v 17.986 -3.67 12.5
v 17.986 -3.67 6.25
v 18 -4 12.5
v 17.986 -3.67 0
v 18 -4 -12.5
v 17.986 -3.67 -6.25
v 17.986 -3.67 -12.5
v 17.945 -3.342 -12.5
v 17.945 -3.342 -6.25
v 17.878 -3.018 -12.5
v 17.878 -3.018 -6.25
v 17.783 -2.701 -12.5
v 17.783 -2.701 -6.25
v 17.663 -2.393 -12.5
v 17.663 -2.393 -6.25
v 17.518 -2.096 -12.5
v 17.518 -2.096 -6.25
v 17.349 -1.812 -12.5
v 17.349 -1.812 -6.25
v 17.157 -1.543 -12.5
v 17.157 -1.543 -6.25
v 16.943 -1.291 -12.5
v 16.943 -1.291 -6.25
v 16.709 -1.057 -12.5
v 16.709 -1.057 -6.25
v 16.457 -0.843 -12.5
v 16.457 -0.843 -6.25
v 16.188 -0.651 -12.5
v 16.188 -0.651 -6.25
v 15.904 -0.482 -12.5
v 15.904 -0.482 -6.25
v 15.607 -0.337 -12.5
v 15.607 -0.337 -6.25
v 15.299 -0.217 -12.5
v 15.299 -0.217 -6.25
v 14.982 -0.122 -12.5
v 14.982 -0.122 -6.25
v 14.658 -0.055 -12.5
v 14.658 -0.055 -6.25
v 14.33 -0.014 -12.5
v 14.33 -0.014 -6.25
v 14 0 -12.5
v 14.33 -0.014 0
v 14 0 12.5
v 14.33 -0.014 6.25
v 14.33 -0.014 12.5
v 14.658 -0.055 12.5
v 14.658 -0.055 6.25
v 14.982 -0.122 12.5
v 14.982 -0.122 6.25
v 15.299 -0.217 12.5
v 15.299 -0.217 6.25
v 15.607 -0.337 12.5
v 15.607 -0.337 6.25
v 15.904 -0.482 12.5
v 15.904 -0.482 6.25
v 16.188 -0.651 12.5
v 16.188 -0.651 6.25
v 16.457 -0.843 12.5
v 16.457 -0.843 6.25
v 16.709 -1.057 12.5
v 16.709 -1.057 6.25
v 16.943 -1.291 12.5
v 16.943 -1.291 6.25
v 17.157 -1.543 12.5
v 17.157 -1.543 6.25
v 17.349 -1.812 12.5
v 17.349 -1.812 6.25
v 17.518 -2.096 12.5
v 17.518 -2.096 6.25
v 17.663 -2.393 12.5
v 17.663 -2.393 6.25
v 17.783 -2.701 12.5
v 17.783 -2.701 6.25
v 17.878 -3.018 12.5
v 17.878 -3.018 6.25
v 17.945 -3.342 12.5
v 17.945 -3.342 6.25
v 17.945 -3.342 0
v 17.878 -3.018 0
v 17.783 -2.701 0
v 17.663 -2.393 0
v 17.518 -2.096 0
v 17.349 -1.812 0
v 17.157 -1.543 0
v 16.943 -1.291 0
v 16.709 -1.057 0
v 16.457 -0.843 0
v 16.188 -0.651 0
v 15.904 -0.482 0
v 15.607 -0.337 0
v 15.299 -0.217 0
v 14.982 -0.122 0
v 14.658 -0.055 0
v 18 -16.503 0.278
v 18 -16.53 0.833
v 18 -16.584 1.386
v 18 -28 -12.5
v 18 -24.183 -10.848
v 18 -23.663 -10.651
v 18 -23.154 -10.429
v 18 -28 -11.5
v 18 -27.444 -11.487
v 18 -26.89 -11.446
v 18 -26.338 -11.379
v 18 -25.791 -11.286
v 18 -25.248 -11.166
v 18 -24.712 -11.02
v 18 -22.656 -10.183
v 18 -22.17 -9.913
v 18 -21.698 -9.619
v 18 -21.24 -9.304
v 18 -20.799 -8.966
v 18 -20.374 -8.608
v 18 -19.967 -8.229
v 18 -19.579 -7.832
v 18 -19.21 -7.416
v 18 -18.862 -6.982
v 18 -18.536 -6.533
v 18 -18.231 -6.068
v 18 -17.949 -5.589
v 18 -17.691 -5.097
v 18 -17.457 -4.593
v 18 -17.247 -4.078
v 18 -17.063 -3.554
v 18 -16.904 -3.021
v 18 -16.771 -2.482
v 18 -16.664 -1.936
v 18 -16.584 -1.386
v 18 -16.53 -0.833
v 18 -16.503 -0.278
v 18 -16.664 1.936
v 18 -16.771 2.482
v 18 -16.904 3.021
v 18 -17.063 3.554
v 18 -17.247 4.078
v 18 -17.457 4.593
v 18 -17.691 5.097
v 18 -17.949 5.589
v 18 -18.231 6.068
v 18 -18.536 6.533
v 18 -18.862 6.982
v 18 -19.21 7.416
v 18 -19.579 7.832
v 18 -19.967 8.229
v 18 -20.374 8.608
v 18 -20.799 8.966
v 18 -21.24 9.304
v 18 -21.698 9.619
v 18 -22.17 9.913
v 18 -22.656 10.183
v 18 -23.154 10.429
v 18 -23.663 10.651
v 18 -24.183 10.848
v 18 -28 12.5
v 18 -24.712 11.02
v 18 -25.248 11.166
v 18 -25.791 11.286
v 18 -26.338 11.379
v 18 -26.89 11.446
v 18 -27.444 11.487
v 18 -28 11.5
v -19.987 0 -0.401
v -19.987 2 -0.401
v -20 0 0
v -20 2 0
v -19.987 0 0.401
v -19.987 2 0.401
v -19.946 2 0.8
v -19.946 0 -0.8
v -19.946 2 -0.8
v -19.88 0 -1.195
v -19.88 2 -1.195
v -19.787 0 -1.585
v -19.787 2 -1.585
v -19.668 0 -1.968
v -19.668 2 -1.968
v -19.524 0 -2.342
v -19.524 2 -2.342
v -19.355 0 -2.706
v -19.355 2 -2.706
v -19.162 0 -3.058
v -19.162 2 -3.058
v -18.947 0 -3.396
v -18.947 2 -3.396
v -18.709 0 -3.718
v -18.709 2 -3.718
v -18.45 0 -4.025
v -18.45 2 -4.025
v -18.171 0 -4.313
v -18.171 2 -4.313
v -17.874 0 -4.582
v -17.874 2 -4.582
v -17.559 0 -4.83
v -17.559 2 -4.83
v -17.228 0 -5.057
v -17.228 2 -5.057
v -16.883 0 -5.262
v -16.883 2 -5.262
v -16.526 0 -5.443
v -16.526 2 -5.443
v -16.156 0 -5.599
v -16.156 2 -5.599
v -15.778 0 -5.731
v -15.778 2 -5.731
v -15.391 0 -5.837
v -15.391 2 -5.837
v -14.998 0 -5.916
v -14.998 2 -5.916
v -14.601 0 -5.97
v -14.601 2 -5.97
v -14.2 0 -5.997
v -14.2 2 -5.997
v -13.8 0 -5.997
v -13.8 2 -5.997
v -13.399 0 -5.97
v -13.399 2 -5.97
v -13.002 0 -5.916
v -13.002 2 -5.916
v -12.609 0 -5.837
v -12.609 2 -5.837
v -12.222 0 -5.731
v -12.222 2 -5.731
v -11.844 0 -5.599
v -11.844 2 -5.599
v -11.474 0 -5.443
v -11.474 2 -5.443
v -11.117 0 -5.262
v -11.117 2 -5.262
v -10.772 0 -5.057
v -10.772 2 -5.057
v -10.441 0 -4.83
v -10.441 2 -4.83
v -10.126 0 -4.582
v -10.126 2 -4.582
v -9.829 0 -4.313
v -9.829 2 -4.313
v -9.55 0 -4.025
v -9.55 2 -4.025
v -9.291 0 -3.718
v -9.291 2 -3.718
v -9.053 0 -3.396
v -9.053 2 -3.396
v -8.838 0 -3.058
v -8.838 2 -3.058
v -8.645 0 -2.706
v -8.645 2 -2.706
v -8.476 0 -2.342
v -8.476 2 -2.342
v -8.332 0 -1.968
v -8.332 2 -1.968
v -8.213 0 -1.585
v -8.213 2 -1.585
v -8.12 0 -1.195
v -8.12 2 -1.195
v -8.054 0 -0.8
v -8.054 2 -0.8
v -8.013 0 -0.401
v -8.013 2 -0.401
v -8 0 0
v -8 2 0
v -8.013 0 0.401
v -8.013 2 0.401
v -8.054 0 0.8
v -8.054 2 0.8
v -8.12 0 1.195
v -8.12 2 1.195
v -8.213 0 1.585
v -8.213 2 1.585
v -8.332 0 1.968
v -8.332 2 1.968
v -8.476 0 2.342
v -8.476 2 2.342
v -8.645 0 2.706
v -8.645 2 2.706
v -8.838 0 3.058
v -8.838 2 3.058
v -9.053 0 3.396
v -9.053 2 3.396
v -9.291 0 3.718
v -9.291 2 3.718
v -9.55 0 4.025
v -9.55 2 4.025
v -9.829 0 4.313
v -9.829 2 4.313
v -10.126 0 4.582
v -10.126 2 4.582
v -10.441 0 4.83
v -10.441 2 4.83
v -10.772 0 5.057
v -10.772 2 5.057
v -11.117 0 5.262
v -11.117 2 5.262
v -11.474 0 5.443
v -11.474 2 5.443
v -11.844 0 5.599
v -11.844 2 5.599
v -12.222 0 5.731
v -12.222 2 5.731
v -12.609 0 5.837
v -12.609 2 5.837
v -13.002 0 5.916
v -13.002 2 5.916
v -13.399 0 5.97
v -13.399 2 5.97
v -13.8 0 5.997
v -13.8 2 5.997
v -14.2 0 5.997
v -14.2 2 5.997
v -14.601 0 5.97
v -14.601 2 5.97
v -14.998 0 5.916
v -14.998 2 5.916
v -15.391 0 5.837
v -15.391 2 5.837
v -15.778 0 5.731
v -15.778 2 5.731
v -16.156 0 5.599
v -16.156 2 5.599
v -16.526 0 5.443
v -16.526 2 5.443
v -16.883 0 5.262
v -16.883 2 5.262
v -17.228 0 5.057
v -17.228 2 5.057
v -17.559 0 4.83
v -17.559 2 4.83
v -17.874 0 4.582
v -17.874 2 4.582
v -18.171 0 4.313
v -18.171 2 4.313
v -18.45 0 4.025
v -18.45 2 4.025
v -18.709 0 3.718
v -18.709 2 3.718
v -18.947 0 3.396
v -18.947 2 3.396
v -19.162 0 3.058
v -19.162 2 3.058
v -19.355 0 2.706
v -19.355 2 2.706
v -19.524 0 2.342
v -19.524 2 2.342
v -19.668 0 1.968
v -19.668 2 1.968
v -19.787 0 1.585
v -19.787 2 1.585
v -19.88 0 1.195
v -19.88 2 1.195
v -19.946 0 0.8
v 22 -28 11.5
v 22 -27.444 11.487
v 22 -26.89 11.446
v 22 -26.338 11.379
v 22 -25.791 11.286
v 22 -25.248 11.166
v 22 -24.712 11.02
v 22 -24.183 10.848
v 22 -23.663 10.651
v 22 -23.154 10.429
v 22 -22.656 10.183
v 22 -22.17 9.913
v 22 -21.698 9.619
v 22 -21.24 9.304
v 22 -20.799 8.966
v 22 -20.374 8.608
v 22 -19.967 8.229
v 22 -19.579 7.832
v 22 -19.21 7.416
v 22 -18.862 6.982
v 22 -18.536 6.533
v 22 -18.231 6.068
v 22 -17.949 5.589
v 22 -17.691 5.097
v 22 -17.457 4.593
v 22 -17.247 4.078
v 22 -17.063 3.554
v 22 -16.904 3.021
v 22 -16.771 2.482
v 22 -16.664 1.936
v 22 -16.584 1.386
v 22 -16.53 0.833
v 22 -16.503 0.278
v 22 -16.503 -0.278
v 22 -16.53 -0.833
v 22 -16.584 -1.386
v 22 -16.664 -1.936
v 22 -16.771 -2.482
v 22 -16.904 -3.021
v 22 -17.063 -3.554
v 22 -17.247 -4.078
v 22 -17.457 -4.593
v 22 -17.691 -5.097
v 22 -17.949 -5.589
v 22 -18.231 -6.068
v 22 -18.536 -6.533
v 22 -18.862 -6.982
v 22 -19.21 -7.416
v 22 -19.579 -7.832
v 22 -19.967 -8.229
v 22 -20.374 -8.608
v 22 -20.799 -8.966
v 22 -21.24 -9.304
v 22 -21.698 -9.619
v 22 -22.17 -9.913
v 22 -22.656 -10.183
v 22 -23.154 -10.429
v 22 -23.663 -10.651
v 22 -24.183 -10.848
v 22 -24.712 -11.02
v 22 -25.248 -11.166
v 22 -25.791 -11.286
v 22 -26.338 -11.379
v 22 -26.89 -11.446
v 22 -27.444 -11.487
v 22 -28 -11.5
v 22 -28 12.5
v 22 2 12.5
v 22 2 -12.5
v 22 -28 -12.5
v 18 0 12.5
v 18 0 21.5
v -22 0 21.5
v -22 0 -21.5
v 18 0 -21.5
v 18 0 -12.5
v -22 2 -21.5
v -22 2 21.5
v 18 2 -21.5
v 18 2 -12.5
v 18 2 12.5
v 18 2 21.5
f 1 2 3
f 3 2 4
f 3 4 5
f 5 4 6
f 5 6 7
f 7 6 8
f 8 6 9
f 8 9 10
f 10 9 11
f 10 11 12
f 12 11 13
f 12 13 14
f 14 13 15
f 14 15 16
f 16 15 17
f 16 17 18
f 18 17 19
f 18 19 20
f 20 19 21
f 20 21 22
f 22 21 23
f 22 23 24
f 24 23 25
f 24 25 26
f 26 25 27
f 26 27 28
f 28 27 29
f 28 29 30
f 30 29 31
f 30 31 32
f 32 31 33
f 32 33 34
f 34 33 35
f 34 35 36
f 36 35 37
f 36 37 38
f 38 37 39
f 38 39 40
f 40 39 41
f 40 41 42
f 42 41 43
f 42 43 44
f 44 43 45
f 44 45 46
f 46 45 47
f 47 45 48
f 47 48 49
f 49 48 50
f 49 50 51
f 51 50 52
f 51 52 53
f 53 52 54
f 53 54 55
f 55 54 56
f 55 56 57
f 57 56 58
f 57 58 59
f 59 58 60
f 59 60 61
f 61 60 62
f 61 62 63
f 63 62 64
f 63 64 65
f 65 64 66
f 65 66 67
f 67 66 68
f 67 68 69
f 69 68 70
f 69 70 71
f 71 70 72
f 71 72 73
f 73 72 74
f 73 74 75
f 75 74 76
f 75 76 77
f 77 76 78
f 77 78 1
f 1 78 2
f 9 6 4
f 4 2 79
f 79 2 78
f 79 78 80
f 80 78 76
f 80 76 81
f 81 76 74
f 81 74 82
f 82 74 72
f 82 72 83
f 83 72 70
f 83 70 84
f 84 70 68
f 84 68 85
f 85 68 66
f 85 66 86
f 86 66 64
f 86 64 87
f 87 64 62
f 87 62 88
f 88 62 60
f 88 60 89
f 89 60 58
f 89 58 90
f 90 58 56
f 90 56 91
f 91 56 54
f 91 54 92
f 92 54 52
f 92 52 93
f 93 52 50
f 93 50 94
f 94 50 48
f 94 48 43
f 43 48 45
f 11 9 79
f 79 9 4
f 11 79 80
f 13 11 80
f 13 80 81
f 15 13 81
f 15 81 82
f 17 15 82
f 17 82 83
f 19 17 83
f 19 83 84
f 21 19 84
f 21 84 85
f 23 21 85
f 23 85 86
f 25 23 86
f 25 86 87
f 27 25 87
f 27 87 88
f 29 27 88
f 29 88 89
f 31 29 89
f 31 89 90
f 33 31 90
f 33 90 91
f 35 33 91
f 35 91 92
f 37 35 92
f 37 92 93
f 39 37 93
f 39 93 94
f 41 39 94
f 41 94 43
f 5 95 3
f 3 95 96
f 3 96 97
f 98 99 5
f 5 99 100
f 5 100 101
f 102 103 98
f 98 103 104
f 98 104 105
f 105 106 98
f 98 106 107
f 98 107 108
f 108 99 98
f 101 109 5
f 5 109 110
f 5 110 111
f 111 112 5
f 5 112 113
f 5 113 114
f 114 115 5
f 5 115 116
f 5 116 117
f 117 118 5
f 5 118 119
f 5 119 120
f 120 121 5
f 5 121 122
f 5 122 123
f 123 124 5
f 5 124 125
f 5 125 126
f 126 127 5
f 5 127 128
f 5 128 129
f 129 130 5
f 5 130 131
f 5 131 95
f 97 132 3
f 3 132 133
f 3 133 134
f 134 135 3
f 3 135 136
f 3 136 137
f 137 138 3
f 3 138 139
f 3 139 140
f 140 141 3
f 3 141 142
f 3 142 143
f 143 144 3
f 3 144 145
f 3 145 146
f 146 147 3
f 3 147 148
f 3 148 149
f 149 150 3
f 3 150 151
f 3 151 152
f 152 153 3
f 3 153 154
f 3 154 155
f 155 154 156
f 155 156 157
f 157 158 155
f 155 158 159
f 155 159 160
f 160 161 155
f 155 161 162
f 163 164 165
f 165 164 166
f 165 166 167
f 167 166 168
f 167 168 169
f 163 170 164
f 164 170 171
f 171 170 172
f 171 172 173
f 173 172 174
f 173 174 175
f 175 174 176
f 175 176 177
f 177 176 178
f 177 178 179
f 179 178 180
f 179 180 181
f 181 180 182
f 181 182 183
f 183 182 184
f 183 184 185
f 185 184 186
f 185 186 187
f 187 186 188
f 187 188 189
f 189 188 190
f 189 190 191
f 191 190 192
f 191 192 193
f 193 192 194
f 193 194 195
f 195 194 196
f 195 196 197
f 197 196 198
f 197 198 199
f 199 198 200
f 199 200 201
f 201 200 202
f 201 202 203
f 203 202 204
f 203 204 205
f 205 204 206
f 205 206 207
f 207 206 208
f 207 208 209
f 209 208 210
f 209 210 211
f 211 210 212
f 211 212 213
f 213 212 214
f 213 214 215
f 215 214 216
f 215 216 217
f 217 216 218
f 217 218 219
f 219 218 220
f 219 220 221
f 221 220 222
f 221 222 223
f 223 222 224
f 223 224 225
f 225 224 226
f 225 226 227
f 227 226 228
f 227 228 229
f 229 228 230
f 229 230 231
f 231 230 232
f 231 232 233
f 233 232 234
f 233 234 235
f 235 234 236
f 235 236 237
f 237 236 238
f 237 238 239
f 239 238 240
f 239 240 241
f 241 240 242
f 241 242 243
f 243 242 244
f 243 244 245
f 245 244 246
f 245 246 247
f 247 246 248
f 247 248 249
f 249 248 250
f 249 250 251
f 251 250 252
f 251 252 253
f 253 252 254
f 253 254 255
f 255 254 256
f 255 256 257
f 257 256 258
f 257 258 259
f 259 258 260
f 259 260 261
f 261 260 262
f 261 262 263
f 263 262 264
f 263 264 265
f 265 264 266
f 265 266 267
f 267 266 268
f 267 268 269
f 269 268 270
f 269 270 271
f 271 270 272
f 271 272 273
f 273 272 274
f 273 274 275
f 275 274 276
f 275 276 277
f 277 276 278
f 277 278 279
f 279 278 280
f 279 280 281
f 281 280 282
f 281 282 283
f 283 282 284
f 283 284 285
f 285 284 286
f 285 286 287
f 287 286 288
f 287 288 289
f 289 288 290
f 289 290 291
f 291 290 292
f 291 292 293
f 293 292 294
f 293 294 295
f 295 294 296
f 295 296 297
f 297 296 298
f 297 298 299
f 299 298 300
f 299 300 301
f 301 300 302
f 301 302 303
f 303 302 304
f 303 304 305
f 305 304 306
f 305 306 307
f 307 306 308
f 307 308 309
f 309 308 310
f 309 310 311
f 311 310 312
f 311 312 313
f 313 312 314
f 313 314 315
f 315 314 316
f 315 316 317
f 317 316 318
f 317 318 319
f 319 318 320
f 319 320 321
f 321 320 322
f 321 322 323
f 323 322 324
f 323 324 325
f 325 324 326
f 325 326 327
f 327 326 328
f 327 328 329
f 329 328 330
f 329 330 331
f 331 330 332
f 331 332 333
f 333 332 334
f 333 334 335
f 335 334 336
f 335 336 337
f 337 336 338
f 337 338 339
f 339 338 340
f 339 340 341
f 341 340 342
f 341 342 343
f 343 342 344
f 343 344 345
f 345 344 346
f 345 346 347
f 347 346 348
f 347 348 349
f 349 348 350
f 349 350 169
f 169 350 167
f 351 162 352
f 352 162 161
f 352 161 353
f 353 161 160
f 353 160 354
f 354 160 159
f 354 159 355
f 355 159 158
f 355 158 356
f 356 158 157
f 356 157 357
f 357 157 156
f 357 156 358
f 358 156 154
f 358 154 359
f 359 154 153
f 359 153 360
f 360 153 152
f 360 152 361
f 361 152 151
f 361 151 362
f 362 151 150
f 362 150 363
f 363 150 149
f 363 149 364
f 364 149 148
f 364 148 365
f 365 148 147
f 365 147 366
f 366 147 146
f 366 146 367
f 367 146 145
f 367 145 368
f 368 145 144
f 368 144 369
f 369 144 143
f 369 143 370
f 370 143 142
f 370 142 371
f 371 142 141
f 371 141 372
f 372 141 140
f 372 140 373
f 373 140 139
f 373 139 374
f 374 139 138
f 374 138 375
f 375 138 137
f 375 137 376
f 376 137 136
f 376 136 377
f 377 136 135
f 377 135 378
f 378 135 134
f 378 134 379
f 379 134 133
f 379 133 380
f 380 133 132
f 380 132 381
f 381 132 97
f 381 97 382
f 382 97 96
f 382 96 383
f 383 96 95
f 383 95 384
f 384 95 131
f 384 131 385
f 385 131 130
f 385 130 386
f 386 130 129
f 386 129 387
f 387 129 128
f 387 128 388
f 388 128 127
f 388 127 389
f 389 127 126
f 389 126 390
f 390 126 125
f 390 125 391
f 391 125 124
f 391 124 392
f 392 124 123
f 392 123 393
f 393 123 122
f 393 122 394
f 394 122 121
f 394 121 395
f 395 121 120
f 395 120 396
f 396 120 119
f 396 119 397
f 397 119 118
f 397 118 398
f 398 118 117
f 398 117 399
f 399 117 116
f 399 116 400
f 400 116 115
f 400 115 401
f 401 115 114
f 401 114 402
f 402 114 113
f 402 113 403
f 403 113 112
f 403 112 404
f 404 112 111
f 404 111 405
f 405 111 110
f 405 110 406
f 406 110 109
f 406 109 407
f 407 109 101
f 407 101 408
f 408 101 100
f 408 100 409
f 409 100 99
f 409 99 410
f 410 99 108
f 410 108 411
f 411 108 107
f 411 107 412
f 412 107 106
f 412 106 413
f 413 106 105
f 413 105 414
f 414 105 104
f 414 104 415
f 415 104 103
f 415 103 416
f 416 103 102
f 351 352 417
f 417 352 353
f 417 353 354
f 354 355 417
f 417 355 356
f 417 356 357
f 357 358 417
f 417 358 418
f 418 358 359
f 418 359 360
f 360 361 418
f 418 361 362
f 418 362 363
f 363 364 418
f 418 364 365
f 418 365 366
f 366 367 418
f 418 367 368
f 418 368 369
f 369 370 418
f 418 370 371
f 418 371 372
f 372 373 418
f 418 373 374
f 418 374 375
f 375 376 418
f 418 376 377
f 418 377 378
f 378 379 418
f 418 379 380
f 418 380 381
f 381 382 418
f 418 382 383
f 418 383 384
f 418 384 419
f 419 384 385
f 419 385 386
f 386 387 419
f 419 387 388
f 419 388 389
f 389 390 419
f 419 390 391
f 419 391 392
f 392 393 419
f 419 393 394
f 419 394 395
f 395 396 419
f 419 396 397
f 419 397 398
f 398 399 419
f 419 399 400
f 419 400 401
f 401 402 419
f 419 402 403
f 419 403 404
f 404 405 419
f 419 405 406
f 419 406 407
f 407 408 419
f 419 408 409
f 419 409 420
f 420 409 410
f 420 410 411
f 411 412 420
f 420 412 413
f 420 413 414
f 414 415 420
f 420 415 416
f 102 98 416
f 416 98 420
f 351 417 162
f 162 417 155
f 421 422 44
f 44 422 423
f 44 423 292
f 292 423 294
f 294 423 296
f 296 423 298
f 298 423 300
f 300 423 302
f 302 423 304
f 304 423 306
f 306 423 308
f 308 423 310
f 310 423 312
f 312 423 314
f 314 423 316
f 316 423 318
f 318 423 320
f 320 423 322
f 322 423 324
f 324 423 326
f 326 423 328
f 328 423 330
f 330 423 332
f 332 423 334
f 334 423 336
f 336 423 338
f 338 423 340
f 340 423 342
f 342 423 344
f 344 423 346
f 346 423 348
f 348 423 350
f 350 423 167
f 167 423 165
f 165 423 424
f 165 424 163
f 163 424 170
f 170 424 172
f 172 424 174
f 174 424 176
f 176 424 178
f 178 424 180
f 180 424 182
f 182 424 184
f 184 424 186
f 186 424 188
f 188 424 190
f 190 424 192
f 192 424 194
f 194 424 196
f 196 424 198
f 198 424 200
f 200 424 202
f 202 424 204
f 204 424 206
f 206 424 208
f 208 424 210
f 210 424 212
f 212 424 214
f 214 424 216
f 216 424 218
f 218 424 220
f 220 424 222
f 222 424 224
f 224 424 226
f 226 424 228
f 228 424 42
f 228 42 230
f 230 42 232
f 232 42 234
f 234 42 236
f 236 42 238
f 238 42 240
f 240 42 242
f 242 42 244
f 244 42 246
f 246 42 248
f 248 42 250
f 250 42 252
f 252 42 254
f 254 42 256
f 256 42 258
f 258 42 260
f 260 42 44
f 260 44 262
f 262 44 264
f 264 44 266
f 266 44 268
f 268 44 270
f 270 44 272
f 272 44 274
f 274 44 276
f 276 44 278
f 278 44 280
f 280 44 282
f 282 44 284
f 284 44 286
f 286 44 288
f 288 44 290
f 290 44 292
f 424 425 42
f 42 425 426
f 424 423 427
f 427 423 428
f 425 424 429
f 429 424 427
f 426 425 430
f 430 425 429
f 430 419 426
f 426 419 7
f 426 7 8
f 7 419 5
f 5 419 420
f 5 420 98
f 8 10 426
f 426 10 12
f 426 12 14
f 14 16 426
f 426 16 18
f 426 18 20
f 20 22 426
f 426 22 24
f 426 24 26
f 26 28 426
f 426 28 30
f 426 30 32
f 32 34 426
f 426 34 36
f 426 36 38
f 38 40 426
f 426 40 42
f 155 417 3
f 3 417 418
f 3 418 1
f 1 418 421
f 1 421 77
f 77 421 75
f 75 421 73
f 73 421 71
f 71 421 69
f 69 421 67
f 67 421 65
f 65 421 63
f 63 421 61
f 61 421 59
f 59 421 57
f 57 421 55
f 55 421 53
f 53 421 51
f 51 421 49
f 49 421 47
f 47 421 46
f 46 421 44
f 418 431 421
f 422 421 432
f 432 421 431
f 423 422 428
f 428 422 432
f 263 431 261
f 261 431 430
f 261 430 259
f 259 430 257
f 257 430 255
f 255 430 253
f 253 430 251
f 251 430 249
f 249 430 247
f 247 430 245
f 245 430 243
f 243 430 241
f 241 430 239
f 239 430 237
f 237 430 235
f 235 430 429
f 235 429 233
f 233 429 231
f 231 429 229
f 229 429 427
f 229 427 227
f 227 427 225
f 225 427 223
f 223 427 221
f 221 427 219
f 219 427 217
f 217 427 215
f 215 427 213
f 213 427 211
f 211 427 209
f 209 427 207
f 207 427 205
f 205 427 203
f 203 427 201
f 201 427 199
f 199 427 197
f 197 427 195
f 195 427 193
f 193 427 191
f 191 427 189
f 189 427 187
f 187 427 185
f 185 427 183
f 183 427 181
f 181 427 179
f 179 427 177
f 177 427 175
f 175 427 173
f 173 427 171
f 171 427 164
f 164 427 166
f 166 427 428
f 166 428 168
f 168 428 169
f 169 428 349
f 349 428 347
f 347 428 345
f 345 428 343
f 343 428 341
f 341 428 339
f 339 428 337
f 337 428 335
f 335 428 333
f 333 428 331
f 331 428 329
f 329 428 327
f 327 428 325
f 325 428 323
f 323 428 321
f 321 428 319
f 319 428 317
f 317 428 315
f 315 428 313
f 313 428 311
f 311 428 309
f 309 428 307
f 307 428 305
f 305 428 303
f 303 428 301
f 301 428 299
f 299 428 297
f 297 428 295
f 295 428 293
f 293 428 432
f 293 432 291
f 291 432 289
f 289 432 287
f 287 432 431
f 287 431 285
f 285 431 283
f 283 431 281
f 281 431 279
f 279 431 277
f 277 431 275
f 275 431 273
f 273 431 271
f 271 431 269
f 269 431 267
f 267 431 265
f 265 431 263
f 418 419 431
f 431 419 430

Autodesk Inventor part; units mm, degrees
ref_plane "YZ Plane" through (0, 0, 0) normal (1, 0, 0) x (0, 1, 0)
ref_plane "XZ Plane" through (0, 0, 0) normal (0, 1, 0) x (-1, 0, 0)
ref_plane "XY Plane" through (0, 0, 0) normal (0, 0, 1) x (1, 0, 0)
sketch "Sketch1" plane through (0, 0, 0) normal (0, 1, 0) x (-1, 0, 0)
  line L0 (-22, 21.5) -> (22, 21.5)
  line L1 (22, 21.5) -> (22, -21.5)
  line L2 (22, -21.5) -> (-22, -21.5)
  line L3 (-22, -21.5) -> (-22, 21.5)
  line L4 (-22, 21.5) -> (22, -21.5) construction
  line L5 (22, 21.5) -> (-22, -21.5) construction
  line L6 (-22, 21.5) -> (-18, 21.5)
  line L7 (-18, 21.5) -> (-18, 12.5)
  line L8 (-18, 12.5) -> (-22, 12.5)
  line L9 (-22, 12.5) -> (-22, 21.5)
  line L10 (-22, -21.5) -> (-18, -21.5)
  line L11 (-18, -21.5) -> (-18, -12.5)
  line L12 (-18, -12.5) -> (-22, -12.5)
  line L13 (-22, -12.5) -> (-22, -21.5)
  point P0 (0, 0)
  point P1 (-22, 12.5)
  dimension "d0" = 44
  dimension "d1" = 43
  dimension "d7" = 4
  dimension "d8" = 9
  dimension "d9" = 4
  dimension "d10" = 9
extrude "Extrusion1" add sketch "Sketch1" along normal blind 2 contours L0 L1 L2 L11 L12 L3 L8 L7
sketch "Sketch3" plane through (0, 2, 0) normal (0, 1, 0) x (1, 0, 0)
  line L0 (18, -12.5) -> (22, -12.5) projected
  line L1 (22, -12.5) -> (22, 12.5) projected
  line L2 (18, -12.5) -> (22, -12.5)
  line L3 (22, -12.5) -> (22, 12.5)
  line L4 (22, 12.5) -> (18, 12.5)
  line L5 (18, 12.5) -> (18, -12.5)
  point P0 (0, 0)
extrude "Extrusion3" add sketch "Sketch3" against normal blind 30
sketch "Sketch4" plane through (22, 2, 12.5) normal (1, 0, 0) x (0, 0, -1)
  line L0 (0, -30) -> (25, -30) projected
  circle A0 centre (12.5, -30) radius 11.5
  point P0 (12.5, -2)
  dimension "d13" = 23
extrude "Extrusion4" cut sketch "Sketch4" against normal blind 4
sketch "Sketch5" plane through (0, 2, 0) normal (0, 1, 0) x (1, 0, 0)
  line L0 (-22, 21.5) -> (-22, -21.5) projected
  line L1 (-22, 0) -> (-14, 0)
  line L2 (-22, 0) -> (-14, 0) construction
  circle A0 centre (-14, 0) radius 6
  point P0 (0, 0)
  dimension "d16" = 8
  dimension "d17" = 0
  dimension "d18" = 12
extrude "Extrusion5" cut sketch "Sketch5" against normal through all
fillet "Fillet1" radius 4 1 edges at (18, 0, 0)
properties part number "Stepper_Closing_2"
